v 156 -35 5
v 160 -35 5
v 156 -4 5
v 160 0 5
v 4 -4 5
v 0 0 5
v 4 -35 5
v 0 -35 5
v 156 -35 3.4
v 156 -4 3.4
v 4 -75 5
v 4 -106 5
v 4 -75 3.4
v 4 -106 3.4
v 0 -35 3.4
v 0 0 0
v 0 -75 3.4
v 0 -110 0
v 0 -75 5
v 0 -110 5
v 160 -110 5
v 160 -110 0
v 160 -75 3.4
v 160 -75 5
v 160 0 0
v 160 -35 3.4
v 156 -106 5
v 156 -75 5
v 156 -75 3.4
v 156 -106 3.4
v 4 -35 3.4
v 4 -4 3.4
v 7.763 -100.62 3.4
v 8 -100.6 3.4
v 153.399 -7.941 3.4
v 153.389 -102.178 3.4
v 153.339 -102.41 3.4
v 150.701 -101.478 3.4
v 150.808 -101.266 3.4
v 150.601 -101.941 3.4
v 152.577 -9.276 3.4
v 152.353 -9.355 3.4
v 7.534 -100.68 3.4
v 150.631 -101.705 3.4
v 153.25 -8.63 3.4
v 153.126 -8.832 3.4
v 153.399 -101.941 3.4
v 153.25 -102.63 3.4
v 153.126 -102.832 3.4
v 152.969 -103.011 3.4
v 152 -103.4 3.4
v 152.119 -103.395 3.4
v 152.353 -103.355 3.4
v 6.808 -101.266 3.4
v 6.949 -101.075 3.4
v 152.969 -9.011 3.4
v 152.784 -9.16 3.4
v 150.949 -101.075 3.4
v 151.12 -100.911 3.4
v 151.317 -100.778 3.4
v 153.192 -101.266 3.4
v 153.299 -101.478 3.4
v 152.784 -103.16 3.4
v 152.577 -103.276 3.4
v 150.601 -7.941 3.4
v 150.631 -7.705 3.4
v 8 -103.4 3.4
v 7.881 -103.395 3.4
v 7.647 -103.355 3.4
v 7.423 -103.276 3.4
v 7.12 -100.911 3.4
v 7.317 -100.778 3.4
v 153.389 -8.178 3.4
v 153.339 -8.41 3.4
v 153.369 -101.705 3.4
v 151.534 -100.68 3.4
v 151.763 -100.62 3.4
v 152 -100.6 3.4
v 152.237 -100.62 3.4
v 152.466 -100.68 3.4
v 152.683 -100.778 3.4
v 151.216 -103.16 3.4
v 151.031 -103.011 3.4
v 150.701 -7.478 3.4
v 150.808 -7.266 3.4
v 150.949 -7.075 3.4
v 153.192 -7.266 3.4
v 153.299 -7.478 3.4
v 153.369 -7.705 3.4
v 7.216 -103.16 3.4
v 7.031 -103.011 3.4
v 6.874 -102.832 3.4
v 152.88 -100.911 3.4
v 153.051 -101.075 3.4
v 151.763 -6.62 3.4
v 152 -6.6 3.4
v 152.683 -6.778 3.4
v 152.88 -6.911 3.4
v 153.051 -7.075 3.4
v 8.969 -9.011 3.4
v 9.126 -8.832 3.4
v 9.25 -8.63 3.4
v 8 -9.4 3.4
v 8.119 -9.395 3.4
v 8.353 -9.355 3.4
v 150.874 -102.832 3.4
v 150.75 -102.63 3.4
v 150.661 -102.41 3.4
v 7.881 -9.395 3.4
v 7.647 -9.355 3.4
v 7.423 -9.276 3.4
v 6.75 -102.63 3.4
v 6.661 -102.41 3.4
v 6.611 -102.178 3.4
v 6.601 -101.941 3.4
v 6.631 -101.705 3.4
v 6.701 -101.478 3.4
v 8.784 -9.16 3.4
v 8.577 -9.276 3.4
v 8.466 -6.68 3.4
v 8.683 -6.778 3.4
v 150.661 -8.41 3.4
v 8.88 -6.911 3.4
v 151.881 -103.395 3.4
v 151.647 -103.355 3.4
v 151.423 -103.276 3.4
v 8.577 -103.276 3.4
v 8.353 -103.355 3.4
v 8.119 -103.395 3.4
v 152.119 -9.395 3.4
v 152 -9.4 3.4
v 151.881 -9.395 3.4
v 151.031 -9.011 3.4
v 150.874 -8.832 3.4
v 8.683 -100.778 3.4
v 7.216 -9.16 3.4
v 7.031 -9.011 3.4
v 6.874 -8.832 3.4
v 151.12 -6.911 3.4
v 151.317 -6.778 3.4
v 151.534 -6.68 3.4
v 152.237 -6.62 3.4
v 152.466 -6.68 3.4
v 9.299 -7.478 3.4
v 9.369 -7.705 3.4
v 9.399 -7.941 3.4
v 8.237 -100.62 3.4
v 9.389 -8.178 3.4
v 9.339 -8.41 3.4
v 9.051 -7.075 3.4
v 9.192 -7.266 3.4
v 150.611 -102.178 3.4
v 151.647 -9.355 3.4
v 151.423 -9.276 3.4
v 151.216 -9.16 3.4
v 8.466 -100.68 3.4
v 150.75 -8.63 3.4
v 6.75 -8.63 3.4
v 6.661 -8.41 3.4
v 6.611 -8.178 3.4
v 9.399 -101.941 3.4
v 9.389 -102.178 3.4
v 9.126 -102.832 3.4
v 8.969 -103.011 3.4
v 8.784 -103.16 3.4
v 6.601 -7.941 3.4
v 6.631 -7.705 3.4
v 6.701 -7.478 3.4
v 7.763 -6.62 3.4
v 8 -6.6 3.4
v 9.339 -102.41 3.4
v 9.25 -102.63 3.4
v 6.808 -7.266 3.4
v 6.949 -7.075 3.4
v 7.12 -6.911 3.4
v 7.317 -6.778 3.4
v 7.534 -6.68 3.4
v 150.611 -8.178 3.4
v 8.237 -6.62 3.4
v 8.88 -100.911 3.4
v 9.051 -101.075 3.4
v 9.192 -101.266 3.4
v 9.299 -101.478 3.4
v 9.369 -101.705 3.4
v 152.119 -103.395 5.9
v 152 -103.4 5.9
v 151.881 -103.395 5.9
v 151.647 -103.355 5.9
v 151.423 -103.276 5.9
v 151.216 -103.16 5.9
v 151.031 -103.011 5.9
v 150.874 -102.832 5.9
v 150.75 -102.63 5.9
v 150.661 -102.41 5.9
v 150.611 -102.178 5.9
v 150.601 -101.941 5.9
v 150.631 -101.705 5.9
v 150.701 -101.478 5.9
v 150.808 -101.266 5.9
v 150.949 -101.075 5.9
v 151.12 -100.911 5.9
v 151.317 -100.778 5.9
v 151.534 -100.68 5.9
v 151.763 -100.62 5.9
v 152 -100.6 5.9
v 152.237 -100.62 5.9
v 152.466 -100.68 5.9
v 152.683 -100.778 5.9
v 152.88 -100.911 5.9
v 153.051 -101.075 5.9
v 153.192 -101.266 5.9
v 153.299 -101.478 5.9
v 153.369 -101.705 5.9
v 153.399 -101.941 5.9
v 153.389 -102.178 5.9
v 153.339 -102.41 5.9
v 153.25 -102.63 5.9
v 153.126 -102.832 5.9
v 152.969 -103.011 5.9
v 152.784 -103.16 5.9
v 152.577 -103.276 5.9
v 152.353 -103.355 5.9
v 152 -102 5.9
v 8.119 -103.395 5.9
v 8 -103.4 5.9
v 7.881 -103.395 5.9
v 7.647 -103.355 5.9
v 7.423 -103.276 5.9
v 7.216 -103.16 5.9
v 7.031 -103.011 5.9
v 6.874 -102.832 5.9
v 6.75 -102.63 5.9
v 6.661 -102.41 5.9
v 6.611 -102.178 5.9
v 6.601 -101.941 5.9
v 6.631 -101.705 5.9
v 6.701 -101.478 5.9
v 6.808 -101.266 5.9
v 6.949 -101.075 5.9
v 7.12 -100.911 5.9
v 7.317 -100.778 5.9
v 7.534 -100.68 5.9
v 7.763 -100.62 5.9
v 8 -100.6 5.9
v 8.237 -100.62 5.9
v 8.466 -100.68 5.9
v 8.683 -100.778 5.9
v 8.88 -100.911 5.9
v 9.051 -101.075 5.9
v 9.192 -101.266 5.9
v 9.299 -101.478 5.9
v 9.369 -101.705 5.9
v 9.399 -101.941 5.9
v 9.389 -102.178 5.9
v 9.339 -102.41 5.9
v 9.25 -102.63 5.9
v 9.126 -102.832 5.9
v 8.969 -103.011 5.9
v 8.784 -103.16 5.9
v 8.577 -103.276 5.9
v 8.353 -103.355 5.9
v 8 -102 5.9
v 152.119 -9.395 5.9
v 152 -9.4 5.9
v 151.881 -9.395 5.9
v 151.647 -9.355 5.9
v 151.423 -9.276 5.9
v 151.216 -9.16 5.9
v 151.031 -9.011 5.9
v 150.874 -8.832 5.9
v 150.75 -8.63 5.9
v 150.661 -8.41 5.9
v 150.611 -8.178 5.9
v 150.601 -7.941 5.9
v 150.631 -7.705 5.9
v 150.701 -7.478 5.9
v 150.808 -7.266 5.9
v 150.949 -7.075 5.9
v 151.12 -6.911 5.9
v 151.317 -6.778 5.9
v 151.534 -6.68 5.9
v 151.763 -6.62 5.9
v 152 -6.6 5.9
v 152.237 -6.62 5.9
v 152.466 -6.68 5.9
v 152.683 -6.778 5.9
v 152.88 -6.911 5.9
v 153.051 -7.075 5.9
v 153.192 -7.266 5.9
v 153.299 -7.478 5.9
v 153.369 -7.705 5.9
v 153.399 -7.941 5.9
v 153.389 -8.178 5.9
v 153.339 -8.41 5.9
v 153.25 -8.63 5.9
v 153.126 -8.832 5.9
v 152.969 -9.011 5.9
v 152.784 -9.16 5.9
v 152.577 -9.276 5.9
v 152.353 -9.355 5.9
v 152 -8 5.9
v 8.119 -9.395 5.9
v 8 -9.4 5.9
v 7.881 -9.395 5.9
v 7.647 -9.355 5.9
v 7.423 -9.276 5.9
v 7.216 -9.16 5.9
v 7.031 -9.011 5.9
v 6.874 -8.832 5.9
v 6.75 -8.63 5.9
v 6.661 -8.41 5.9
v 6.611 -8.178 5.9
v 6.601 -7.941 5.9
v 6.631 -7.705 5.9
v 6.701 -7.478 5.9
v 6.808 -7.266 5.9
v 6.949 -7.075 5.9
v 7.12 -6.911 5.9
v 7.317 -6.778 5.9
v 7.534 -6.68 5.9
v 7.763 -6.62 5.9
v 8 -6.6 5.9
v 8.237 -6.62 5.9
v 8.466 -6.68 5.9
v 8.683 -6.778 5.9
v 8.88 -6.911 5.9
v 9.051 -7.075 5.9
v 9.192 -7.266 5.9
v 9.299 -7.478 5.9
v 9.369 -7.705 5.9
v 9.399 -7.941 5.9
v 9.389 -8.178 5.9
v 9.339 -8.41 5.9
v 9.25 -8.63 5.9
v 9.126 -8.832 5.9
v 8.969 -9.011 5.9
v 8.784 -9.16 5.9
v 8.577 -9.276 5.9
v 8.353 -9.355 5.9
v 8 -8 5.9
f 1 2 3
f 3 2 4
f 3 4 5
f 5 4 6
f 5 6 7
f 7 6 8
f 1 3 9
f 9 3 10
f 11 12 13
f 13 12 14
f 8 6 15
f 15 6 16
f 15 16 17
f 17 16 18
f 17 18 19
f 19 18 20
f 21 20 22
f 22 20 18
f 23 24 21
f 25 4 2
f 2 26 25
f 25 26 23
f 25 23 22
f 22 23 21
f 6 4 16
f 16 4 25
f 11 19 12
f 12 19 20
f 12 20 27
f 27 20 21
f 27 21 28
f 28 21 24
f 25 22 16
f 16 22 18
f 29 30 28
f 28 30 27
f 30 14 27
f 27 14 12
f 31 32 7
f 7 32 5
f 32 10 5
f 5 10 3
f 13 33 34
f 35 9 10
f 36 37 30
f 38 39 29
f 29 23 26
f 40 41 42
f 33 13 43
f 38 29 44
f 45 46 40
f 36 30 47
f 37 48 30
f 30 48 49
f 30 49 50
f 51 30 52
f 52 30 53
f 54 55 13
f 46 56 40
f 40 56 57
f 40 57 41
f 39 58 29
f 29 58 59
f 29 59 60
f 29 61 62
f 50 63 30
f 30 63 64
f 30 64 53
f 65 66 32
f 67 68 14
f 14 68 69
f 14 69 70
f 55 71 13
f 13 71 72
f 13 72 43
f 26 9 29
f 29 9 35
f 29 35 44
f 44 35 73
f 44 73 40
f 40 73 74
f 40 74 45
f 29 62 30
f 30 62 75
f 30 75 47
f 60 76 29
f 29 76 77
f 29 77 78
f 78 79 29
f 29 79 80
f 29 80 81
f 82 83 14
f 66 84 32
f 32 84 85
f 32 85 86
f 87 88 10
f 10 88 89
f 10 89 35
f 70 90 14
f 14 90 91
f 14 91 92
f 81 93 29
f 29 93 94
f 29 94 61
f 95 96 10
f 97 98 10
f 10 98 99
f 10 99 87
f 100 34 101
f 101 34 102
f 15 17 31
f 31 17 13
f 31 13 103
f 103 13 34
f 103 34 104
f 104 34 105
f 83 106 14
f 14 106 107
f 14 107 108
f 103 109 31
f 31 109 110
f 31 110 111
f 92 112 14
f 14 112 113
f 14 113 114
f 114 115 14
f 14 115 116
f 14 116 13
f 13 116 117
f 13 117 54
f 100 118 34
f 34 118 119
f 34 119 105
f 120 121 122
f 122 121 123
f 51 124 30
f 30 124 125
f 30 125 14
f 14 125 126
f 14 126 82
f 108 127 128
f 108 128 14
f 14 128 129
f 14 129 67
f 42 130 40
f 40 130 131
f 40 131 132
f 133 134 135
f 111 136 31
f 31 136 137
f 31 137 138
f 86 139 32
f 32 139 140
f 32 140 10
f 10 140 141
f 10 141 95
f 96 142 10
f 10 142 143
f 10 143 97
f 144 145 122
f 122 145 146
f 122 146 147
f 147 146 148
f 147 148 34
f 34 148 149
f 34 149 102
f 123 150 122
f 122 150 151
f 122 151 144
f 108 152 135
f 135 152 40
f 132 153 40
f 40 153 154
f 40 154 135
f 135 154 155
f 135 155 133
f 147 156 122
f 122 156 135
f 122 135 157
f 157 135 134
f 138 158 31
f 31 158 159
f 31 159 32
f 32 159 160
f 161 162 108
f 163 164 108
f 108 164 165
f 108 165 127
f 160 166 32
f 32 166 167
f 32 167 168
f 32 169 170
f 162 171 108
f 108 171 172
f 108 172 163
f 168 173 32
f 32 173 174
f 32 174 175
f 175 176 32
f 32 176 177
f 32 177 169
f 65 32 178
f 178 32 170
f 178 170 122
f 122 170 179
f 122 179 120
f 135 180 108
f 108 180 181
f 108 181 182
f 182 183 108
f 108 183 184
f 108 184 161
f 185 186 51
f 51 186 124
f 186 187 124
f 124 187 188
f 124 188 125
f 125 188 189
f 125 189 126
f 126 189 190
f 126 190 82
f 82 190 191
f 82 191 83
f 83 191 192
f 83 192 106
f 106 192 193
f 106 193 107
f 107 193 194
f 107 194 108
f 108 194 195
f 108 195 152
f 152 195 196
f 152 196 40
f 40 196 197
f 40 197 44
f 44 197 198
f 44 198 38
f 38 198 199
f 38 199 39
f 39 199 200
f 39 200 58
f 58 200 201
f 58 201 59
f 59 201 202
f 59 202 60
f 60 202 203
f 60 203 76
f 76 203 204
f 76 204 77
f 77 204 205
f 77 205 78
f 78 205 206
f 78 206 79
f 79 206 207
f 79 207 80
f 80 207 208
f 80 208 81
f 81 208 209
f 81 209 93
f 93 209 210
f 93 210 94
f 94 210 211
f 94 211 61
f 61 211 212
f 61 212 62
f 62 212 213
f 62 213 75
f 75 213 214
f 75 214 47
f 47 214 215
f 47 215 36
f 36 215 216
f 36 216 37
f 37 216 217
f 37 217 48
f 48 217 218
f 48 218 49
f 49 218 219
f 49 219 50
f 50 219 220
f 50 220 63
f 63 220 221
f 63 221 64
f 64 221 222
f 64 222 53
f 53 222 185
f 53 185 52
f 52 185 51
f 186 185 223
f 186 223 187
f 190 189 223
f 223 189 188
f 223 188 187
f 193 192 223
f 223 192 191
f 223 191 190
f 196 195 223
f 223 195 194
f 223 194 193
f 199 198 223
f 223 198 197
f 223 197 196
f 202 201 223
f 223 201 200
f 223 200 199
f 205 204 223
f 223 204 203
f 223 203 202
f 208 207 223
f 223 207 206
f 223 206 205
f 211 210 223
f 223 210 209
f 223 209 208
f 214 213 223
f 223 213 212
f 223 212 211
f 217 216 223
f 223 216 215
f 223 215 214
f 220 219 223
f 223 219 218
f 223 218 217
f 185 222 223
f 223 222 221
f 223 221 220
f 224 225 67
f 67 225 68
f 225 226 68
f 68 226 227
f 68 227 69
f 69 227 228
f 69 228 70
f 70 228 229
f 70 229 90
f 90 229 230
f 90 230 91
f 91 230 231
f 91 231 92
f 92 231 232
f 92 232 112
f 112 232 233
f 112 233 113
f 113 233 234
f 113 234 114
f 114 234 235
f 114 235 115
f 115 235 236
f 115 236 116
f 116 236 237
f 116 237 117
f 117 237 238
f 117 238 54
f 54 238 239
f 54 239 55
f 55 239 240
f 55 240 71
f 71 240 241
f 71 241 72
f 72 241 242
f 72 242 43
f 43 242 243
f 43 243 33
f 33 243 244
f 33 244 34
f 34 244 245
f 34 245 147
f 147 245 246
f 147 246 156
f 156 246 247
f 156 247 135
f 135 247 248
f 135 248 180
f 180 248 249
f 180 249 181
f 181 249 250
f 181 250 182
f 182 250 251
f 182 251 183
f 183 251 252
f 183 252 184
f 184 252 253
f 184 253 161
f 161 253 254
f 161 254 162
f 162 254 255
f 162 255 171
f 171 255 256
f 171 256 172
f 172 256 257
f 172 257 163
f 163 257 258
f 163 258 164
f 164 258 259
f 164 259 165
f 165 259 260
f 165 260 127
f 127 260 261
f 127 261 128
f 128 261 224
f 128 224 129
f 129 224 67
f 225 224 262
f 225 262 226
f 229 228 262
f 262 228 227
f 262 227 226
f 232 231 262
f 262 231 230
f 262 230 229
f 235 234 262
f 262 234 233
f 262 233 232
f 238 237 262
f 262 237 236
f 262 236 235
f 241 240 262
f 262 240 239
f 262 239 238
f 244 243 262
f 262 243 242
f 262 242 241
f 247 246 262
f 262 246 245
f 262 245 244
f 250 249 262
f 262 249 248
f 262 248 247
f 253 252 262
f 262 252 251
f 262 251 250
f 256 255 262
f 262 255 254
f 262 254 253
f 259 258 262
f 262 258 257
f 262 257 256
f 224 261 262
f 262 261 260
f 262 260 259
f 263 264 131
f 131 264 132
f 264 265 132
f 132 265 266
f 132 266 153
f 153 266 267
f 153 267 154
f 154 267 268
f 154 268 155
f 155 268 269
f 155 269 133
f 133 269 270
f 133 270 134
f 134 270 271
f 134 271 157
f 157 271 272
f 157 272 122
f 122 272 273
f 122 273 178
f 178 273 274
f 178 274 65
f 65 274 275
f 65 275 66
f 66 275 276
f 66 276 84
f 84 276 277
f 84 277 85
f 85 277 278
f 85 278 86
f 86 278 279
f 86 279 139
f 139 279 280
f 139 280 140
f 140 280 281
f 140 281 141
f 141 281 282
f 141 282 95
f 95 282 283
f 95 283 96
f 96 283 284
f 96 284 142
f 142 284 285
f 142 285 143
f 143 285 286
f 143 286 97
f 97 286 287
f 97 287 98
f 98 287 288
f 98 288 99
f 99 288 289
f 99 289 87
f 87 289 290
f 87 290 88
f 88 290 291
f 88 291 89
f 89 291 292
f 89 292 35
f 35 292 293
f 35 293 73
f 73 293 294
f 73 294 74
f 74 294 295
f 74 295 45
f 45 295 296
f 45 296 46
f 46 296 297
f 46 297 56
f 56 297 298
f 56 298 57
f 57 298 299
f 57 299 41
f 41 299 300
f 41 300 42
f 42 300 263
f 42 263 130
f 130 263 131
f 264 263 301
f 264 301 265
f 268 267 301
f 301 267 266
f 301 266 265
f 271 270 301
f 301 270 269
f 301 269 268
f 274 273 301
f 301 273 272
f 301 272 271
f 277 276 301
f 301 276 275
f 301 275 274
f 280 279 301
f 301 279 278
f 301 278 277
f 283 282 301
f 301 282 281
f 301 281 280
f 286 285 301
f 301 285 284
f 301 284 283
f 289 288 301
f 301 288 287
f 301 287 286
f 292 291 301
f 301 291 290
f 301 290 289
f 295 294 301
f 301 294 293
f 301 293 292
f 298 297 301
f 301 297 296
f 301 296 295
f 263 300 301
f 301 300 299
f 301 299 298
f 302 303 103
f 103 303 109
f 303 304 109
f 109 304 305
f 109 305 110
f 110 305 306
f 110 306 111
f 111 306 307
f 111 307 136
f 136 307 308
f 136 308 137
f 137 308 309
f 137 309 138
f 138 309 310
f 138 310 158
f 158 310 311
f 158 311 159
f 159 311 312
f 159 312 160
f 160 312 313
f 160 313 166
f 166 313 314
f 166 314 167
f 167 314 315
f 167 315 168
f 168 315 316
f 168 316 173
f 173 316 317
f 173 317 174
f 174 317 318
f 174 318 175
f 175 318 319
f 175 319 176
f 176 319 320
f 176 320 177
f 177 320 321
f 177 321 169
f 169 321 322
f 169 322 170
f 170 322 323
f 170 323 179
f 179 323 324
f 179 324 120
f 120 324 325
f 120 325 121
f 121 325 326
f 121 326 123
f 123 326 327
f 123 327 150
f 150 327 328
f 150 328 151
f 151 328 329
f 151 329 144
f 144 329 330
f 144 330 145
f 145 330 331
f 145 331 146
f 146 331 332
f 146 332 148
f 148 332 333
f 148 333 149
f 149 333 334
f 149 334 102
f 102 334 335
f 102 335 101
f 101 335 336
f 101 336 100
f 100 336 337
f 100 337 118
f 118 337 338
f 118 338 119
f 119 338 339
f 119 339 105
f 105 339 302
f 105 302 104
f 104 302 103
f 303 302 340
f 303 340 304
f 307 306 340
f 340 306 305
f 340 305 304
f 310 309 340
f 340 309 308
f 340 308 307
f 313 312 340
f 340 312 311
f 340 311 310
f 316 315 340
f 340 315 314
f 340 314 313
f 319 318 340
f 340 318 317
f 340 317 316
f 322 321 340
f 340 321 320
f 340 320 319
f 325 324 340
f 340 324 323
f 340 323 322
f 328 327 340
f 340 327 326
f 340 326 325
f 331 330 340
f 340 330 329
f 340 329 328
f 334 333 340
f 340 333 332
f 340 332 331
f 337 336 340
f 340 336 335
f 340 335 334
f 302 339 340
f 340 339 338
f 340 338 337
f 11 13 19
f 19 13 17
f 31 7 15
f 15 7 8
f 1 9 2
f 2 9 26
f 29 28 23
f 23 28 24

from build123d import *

# Parameters (mm, degrees)
SKETCH1_W           = 160
SKETCH1_H           = 110
BOSS_EXTRUDE1_DEPTH = 5
SKETCH3_W           = 152
SKETCH3_H           = 102
CUT_EXTRUDE1_DEPTH  = 1.6
SKETCH4_R           = 1.4
BOSS_EXTRUDE3_DEPTH = 2.5
SKETCH11_W          = 5
SKETCH11_H          = 40
CUT_EXTRUDE3_DEPTH  = 1.6


with BuildPart() as part:
    # Sketch1 → Boss-Extrude1 (new body)
    with BuildSketch(Plane(origin=(0, 0, 0), x_dir=(1, 0, 0), z_dir=(0, 0, -1))):
        with Locations((80, 55)):
            Rectangle(SKETCH1_W, SKETCH1_H)
    extrude(amount=-BOSS_EXTRUDE1_DEPTH)

    # Sketch3 → Cut-Extrude1 (cut)
    with BuildSketch(Plane(origin=(0, 0, 5), x_dir=(-1, 0, 0), z_dir=(0, 0, 1))):
        with Locations((-80, 55)):
            Rectangle(SKETCH3_W, SKETCH3_H)
    extrude(amount=-CUT_EXTRUDE1_DEPTH, mode=Mode.SUBTRACT)

    # Sketch4 → Boss-Extrude3 (add)
    with BuildSketch(Plane(origin=(0, 0, 3.4), x_dir=(-1, 0, 0), z_dir=(0, 0, 1))):
        with Locations((-152, 102)):
            Circle(SKETCH4_R)
        with Locations((-8, 102)):
            Circle(SKETCH4_R)
        with Locations((-152, 8)):
            Circle(SKETCH4_R)
        with Locations((-8, 8)):
            Circle(SKETCH4_R)
    extrude(amount=BOSS_EXTRUDE3_DEPTH)

    # Sketch11 → Cut-Extrude3 (cut)
    with BuildSketch(Plane(origin=(0, 0, 5), x_dir=(-1, 0, 0), z_dir=(0, 0, 1))):
        with Locations((-158.5, 55)):
            Rectangle(SKETCH11_W, SKETCH11_H)
        with Locations((-1.5, 55)):
            Rectangle(SKETCH11_W, SKETCH11_H)
    extrude(amount=-CUT_EXTRUDE3_DEPTH, mode=Mode.SUBTRACT)


solid = part.part
